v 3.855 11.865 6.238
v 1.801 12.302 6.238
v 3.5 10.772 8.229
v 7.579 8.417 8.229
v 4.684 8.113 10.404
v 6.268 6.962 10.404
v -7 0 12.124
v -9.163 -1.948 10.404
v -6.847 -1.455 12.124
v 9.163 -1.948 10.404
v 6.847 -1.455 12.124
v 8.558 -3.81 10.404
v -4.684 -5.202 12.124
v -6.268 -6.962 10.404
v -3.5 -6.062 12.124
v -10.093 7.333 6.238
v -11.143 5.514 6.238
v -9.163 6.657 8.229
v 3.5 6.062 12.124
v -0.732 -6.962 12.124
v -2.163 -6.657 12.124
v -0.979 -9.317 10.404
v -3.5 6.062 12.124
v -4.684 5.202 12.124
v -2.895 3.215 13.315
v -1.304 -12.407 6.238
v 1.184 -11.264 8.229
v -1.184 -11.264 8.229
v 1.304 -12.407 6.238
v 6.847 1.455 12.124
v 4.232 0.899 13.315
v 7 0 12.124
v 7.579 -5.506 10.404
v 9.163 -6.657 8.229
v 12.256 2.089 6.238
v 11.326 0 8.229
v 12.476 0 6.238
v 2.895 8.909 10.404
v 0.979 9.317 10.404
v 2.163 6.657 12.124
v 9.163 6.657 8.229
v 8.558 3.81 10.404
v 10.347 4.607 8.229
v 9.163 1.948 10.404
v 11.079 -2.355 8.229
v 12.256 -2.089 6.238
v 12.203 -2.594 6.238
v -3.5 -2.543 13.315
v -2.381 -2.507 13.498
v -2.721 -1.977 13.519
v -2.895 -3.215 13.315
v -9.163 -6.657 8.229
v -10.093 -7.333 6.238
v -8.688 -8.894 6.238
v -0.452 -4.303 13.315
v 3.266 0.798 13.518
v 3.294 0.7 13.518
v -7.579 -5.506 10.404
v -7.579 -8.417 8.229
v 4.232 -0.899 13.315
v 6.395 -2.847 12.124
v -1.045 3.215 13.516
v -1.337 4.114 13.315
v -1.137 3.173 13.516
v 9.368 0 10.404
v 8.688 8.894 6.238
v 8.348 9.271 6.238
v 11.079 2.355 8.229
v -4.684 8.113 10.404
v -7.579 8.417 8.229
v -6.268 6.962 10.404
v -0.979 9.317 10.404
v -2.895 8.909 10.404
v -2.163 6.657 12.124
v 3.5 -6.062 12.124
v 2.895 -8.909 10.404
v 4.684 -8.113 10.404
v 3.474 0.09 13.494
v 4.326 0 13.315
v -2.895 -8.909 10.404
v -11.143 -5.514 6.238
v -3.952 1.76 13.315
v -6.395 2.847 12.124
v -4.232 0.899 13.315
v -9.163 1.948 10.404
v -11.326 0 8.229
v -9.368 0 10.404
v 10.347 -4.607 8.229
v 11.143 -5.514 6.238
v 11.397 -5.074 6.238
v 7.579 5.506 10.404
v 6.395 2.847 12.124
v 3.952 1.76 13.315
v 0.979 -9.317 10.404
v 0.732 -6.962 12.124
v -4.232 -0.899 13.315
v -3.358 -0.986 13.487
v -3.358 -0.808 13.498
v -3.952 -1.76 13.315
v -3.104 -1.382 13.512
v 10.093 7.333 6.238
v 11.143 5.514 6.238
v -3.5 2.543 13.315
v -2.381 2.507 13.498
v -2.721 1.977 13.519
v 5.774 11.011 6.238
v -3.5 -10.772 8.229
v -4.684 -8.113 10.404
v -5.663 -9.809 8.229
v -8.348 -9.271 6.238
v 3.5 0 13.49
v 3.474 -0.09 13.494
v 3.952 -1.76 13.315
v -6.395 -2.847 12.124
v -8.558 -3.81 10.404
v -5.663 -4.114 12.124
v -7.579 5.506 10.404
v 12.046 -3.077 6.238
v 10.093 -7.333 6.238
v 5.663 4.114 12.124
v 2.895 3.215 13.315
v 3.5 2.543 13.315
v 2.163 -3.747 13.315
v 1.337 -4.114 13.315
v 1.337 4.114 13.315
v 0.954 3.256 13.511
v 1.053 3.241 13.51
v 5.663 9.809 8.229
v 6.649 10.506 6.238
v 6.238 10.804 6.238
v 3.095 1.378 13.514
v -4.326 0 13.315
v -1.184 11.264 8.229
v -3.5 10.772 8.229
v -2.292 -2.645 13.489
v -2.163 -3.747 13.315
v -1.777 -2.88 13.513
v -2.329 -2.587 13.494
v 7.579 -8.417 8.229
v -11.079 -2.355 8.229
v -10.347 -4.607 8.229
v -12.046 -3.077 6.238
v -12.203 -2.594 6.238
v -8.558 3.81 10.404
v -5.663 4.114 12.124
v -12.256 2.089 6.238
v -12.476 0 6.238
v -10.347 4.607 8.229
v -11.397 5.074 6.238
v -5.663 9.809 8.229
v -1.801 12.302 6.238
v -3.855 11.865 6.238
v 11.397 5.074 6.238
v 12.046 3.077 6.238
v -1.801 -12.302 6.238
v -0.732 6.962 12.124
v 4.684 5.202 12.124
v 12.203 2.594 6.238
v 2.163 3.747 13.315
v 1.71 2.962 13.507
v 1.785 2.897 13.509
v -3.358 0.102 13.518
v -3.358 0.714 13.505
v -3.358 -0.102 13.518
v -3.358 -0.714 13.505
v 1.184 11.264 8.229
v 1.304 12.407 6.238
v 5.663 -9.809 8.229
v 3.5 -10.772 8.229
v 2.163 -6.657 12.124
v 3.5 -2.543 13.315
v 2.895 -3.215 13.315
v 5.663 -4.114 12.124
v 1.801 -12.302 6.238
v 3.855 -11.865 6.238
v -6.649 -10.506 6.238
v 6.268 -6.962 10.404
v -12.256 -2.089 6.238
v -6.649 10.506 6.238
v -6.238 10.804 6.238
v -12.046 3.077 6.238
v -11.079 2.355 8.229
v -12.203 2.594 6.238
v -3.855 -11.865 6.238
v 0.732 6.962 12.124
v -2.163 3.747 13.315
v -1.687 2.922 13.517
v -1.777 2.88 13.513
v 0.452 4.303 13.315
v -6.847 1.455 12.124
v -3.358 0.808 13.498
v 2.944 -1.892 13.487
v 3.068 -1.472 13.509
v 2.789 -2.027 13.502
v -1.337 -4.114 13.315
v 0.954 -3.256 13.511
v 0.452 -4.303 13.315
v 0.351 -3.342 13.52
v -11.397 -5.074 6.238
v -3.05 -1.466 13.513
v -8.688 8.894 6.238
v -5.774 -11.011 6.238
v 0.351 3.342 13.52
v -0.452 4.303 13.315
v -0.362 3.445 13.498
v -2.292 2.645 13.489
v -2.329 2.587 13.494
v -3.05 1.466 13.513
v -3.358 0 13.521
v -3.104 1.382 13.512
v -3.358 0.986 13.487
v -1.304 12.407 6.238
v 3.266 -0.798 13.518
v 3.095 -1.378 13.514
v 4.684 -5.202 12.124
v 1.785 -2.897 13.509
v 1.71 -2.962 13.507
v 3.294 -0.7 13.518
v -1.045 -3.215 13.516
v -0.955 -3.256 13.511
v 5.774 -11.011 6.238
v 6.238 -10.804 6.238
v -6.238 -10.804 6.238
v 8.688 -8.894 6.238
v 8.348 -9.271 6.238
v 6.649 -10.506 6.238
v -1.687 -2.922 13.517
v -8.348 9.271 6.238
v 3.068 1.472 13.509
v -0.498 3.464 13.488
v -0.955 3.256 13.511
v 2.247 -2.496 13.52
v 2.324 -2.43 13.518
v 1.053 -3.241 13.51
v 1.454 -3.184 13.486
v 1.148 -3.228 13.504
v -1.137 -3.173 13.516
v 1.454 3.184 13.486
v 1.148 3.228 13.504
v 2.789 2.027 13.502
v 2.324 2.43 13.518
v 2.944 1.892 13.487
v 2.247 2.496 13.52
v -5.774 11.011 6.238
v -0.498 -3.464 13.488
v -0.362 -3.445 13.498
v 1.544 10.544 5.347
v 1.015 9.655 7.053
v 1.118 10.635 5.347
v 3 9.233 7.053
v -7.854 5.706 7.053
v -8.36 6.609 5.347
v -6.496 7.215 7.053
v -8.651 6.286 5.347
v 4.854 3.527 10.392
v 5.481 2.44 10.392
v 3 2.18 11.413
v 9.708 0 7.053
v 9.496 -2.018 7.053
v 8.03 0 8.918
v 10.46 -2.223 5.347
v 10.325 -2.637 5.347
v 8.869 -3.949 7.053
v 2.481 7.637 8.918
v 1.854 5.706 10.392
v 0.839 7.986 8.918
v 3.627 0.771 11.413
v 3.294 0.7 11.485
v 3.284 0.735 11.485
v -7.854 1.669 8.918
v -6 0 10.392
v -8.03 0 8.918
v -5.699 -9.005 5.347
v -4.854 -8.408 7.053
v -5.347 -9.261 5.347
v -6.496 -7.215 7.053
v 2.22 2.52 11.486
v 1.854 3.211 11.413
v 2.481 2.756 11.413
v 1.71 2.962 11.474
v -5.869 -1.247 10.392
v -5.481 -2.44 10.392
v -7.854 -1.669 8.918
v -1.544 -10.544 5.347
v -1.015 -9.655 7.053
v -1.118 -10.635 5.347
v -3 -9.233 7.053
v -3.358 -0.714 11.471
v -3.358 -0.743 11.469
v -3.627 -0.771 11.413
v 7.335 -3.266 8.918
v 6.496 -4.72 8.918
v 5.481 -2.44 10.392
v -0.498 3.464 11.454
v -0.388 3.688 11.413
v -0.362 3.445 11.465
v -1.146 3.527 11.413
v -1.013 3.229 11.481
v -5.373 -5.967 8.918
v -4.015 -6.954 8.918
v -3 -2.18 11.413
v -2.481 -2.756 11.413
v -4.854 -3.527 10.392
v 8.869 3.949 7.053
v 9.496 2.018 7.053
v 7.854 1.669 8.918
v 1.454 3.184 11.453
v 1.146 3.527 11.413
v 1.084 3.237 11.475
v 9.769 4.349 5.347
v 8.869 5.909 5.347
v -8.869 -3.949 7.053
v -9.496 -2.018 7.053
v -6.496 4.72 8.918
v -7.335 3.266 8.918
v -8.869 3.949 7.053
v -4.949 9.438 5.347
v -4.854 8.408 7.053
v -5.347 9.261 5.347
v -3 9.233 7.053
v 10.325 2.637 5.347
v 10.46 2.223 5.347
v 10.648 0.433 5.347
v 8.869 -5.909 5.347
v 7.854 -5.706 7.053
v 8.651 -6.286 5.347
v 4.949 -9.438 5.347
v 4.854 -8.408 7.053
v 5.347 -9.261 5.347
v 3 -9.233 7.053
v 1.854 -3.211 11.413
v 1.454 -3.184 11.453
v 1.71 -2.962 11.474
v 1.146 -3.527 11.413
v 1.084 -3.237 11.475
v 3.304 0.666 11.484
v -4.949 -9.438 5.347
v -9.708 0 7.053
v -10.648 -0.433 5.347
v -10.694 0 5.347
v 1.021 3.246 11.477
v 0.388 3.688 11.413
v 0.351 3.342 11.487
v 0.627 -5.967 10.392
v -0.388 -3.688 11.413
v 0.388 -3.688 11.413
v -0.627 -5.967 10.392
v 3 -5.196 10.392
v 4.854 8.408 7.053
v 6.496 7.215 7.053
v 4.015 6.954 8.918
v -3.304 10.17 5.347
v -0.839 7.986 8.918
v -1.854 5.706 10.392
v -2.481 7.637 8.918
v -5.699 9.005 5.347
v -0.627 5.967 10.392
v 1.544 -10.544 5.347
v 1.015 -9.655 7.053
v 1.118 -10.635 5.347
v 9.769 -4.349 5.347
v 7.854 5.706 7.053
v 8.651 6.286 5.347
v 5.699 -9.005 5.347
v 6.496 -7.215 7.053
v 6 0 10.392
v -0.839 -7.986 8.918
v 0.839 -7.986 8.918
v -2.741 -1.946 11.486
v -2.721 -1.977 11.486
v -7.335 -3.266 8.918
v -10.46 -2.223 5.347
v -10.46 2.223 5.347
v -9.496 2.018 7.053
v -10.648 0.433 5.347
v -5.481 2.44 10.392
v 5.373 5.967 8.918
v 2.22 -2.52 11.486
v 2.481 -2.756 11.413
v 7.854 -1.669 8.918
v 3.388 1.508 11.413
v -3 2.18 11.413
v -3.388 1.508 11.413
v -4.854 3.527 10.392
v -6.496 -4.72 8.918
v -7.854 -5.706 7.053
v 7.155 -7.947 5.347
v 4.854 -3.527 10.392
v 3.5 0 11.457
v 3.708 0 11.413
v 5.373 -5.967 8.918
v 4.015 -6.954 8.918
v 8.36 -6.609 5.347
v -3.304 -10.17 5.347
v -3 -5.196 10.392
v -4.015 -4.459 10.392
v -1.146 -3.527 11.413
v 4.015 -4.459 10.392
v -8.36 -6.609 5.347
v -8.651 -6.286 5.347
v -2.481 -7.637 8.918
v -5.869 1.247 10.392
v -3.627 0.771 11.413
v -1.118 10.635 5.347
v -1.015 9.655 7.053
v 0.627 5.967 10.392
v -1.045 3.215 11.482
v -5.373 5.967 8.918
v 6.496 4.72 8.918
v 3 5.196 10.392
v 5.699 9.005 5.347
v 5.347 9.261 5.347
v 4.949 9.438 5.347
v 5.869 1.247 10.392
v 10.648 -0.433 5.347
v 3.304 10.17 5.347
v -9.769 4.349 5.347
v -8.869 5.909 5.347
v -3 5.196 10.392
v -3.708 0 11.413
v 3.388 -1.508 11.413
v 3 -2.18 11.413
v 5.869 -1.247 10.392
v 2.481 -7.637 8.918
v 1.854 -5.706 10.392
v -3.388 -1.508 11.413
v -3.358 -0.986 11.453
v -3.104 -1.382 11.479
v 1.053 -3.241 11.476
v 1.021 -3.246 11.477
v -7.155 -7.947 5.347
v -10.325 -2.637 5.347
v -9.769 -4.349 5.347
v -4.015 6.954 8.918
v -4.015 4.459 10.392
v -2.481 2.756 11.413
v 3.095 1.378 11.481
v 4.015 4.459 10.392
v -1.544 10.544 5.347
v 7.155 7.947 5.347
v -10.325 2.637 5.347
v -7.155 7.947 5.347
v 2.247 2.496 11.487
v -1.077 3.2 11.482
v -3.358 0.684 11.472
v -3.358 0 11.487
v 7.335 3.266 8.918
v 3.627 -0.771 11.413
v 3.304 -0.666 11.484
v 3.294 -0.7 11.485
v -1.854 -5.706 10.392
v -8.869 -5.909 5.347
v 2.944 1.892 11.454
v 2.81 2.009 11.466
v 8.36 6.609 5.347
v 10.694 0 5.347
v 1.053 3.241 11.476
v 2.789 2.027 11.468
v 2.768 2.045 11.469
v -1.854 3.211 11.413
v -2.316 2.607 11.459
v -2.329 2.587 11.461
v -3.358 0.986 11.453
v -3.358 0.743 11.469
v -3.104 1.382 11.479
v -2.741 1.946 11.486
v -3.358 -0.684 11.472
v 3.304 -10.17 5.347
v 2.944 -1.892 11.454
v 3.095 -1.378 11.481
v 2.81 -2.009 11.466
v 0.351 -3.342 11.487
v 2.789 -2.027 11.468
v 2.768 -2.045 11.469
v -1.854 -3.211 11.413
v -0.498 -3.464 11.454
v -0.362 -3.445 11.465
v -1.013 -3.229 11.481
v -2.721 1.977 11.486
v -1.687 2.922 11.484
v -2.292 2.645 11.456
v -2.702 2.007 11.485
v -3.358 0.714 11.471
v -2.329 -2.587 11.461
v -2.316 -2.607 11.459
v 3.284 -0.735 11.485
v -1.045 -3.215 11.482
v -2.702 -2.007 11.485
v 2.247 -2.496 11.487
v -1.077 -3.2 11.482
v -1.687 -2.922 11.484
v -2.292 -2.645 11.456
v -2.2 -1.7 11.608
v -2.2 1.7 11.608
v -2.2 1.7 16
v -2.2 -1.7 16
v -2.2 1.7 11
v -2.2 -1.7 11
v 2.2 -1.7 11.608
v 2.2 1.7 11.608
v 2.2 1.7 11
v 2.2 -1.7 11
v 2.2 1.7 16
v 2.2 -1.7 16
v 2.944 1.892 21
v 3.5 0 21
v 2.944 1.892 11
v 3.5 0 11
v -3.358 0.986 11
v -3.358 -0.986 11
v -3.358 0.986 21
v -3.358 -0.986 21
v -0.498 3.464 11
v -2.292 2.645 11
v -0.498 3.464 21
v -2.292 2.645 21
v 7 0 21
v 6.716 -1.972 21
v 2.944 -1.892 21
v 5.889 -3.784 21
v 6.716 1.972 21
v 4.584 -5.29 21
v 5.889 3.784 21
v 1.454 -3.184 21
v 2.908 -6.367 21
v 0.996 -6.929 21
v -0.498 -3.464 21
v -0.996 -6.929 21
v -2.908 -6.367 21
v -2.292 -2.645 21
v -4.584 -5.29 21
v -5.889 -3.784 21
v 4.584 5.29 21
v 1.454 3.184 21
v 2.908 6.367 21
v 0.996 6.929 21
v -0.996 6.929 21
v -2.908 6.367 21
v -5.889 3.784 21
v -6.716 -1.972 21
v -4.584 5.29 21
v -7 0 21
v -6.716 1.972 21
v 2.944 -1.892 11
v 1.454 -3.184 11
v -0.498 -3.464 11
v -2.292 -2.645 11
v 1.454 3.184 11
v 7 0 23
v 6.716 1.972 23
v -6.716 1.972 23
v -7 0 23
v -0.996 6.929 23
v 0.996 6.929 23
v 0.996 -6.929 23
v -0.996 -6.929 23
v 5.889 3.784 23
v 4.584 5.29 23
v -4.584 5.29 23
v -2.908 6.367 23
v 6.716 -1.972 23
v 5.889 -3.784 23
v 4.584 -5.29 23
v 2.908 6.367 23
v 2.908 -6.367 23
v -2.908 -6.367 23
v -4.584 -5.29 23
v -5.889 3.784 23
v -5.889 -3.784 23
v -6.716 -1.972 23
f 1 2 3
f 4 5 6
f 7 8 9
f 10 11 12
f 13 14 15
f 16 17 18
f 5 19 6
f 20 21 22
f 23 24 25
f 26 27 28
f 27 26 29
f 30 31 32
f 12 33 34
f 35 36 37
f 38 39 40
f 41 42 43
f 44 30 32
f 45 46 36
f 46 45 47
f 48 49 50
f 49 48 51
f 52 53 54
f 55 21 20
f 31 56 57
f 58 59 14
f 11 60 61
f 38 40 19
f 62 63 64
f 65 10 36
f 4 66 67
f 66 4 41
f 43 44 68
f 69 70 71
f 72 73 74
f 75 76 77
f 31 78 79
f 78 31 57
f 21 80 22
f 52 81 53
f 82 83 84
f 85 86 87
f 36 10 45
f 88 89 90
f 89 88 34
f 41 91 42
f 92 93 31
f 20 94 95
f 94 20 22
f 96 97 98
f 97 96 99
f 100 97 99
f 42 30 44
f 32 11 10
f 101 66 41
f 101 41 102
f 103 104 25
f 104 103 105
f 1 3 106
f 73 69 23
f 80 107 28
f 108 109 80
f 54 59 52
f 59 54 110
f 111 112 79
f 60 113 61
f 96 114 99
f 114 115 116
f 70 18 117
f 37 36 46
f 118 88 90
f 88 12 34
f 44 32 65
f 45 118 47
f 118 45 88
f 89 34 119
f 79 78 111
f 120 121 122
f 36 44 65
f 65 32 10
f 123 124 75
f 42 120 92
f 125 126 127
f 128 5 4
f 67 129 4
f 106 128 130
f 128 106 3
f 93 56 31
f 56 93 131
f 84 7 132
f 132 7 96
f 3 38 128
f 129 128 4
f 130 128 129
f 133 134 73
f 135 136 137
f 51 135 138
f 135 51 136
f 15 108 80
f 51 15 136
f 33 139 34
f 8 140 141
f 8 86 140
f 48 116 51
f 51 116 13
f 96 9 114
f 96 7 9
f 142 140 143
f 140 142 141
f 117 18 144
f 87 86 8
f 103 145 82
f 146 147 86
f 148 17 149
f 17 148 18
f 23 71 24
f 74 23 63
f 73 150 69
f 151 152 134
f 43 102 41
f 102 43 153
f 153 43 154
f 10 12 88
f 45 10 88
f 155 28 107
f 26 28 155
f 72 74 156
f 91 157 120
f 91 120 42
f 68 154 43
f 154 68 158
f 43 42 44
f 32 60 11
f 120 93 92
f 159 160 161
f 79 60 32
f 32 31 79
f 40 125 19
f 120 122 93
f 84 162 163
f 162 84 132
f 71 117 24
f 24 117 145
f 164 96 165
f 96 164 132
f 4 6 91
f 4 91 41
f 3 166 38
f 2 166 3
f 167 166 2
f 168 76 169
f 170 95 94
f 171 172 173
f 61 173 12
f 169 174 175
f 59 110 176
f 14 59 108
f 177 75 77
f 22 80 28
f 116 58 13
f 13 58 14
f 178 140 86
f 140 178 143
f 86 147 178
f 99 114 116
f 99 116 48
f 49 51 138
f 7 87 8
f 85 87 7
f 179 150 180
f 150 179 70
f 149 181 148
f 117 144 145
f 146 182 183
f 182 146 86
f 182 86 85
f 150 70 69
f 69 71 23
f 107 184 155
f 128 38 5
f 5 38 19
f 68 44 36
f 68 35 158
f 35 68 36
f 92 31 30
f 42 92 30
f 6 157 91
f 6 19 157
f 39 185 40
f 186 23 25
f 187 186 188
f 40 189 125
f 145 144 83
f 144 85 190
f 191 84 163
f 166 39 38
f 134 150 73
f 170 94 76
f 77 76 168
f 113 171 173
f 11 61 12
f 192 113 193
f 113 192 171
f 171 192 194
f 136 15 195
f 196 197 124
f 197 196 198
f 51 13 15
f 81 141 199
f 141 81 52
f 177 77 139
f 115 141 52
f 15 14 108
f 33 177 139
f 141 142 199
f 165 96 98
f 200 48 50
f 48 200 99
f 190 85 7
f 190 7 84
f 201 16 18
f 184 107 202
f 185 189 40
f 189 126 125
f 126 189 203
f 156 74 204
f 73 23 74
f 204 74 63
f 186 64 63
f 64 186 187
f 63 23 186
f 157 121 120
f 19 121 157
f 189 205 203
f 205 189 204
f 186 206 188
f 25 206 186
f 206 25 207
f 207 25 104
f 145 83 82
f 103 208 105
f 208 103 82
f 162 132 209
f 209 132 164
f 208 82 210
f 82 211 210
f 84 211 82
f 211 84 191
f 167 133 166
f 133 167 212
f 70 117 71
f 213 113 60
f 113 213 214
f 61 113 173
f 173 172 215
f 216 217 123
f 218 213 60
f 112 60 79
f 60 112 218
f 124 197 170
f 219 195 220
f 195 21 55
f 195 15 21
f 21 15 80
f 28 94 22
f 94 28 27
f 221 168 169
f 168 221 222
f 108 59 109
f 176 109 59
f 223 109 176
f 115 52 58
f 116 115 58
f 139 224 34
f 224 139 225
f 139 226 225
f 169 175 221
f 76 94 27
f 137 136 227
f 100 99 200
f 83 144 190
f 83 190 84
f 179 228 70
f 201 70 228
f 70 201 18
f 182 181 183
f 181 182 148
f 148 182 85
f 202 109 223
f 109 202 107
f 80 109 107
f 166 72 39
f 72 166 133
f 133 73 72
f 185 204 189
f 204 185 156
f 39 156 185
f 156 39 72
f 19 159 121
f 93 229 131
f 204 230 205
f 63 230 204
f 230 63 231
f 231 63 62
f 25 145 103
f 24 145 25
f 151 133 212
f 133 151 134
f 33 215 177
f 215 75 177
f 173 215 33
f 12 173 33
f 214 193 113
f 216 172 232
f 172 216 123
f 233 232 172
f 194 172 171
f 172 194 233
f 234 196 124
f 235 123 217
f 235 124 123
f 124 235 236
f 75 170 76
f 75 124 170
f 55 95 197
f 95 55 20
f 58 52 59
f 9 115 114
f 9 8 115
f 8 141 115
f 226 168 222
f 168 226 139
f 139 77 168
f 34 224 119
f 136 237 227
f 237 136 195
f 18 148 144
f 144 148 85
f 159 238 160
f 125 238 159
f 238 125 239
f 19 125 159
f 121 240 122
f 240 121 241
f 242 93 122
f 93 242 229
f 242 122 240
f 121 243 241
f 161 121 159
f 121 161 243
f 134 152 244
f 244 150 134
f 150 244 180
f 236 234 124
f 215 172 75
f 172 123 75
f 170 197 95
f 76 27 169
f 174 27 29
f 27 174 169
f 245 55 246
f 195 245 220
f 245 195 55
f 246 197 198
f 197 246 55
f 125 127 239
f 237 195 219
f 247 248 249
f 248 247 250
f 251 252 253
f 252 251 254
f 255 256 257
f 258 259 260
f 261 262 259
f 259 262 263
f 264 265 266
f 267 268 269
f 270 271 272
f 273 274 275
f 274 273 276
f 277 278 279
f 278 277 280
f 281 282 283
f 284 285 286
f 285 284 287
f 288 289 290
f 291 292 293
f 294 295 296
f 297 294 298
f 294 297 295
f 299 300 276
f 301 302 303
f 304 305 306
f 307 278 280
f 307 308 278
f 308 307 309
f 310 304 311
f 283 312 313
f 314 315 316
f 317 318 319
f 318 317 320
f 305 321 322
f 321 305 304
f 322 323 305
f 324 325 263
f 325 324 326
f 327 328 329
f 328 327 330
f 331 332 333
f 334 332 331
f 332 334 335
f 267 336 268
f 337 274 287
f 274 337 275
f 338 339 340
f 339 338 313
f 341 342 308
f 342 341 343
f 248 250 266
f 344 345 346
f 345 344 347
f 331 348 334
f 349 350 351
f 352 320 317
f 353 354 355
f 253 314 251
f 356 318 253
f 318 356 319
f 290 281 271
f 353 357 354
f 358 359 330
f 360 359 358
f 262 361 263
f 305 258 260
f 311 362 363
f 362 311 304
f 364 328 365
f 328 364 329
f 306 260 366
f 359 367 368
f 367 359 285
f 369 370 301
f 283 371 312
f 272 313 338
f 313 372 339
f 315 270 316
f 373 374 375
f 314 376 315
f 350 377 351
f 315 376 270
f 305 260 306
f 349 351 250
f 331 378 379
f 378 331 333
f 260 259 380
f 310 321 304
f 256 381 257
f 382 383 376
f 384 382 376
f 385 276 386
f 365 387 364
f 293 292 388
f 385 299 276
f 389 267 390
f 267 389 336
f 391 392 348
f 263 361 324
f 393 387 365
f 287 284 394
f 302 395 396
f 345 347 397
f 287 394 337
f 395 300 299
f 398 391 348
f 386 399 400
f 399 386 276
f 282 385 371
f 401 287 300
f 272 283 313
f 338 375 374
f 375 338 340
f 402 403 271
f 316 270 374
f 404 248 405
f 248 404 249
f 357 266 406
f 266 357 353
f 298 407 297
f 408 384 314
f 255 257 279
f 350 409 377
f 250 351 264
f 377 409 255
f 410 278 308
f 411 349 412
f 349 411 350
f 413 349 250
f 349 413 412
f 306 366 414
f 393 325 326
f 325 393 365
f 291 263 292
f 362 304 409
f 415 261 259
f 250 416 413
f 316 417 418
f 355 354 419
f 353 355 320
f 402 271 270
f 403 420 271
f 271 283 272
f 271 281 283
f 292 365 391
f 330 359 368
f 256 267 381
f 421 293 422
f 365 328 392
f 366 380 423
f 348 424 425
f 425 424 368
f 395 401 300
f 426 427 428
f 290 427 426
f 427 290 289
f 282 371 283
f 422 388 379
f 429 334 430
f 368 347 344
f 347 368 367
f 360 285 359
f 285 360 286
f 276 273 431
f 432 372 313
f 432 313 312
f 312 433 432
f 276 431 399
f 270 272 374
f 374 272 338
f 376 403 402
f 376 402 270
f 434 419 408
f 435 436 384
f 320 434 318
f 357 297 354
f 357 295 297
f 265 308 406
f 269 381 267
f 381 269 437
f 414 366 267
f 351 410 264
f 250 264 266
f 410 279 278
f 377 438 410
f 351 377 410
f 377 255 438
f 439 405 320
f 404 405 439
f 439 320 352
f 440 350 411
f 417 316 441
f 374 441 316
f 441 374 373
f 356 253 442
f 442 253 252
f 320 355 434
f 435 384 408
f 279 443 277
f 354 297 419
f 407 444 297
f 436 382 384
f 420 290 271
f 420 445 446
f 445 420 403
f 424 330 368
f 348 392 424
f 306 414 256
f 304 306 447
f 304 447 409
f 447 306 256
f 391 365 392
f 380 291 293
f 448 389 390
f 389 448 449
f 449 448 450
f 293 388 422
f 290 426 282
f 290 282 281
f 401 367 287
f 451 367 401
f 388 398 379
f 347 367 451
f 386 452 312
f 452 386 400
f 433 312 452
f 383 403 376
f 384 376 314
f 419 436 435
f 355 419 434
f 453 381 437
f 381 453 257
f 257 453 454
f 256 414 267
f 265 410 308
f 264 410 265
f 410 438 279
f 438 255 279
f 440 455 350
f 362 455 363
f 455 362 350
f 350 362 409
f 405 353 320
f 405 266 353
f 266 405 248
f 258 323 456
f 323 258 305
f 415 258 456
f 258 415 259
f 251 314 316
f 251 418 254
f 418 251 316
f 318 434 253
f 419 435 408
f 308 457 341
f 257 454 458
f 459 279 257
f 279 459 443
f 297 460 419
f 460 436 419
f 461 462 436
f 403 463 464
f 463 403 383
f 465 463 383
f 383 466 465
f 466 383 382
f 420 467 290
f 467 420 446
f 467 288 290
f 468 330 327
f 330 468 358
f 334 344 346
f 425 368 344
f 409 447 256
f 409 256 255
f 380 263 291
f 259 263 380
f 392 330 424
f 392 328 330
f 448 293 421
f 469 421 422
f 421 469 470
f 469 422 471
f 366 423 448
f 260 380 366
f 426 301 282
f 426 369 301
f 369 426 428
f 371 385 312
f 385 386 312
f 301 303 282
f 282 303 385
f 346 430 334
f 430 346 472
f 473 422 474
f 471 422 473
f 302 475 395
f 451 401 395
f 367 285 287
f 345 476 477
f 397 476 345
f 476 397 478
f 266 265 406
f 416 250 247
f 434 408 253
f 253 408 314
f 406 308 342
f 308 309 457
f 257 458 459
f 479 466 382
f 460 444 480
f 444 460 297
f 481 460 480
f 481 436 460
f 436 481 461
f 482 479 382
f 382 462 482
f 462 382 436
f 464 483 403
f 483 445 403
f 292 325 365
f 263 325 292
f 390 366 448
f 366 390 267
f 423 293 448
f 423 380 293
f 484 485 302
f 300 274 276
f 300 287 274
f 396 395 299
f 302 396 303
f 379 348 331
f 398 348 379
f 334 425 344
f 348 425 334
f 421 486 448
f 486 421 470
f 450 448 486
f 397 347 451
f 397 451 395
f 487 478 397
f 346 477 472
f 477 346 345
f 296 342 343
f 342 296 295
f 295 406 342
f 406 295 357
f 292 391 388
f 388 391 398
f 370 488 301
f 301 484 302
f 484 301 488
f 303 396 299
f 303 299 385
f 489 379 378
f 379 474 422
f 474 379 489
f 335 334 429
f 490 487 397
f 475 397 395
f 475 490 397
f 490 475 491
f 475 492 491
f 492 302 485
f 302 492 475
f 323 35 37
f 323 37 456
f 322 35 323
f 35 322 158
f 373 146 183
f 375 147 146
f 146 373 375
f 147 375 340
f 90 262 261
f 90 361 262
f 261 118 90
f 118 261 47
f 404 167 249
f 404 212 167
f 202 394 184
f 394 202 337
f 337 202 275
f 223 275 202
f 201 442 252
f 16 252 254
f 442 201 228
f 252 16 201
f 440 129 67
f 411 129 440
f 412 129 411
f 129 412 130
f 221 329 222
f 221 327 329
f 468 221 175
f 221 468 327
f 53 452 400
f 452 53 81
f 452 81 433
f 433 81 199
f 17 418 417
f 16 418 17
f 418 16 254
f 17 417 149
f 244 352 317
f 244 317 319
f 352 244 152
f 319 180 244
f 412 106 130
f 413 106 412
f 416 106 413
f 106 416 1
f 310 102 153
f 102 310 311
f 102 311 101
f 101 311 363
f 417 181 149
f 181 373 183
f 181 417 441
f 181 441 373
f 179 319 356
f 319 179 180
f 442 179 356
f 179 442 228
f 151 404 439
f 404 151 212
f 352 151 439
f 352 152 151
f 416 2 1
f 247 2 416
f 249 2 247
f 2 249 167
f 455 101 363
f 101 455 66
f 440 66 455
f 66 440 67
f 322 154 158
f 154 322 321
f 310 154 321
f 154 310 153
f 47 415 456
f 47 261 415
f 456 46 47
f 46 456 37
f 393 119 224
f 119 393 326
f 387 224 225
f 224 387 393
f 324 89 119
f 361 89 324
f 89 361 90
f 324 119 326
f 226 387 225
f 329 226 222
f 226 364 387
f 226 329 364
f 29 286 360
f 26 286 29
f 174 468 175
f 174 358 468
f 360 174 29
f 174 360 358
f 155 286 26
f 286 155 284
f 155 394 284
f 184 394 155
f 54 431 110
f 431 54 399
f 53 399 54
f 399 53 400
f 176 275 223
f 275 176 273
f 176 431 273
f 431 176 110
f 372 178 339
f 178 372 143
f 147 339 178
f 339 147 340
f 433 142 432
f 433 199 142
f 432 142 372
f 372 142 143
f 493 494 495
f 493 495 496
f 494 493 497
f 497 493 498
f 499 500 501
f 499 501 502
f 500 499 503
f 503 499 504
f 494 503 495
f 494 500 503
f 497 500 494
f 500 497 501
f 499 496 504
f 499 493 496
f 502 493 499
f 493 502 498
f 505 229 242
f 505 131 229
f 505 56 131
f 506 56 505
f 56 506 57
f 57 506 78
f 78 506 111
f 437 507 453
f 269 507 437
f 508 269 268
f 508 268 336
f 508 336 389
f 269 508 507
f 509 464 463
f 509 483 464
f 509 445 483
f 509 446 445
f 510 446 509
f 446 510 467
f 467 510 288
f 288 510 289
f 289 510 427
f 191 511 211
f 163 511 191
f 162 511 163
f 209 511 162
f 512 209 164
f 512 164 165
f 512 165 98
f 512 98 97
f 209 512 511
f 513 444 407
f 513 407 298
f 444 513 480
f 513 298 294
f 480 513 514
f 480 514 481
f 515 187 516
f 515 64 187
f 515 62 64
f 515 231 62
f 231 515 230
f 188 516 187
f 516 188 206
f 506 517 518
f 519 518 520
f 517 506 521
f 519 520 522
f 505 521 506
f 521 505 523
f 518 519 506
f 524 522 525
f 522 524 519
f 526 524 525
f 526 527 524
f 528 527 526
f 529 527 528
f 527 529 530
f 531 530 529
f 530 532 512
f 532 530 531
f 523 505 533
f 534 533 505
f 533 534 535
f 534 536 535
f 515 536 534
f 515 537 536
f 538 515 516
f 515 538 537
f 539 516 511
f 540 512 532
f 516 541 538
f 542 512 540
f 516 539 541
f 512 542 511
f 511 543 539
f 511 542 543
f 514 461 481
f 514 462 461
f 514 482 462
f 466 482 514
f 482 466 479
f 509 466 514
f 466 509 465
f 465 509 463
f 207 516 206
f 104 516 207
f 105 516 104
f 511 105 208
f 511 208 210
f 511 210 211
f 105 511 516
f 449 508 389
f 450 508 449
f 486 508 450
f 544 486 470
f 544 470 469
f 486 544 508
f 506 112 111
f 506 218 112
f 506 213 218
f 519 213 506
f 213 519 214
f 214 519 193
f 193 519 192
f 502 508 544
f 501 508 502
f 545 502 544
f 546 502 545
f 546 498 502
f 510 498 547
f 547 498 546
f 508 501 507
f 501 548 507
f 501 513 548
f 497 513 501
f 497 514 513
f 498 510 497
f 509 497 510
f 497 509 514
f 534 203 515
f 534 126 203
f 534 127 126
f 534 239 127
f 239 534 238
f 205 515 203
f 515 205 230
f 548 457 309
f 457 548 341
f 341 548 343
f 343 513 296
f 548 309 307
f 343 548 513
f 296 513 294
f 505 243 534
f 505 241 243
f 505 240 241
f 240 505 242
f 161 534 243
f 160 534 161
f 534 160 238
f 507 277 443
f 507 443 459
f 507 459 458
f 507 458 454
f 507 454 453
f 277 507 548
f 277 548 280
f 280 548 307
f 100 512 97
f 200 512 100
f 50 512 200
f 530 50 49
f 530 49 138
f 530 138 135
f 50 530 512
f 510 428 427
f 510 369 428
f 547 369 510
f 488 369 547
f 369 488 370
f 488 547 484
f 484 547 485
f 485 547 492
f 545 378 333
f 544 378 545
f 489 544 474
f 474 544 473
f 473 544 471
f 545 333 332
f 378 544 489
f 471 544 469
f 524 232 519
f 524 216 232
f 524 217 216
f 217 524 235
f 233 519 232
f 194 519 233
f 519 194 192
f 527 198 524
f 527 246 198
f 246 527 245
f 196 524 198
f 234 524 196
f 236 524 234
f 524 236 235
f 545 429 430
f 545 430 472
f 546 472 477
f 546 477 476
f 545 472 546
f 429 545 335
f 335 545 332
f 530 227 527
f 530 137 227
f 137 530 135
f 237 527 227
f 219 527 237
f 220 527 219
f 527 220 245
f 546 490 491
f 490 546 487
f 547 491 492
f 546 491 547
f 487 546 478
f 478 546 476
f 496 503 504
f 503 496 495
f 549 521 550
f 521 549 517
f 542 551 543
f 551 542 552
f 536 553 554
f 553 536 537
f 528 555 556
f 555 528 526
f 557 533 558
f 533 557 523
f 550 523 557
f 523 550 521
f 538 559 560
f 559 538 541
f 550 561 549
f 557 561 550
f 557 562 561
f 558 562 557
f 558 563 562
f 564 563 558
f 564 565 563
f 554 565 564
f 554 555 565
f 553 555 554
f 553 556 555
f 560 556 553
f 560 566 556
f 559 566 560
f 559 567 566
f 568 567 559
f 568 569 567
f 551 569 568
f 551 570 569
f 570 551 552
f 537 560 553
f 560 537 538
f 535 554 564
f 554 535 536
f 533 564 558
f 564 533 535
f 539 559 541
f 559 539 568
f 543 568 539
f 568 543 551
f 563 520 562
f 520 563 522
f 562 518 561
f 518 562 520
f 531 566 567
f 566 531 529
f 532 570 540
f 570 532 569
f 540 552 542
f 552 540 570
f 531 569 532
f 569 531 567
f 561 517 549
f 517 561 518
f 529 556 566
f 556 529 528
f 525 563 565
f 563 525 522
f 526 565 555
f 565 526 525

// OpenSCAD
MARGIN=0.2;

difference() {

intersection() {

difference() {
    
sphere(14);

sphere(12);

}

cylinder(15,0,30);

}

translate([-2-MARGIN,-1.5-MARGIN,10]) {
cube([4+MARGIN*2,3+MARGIN*2,4]);
}

}



difference() {

translate([0,0,11]) {
    cylinder(10,3.5,3.5);
}

translate([-2-MARGIN,-1.5-MARGIN,11]) {
cube([4+MARGIN*2,3+MARGIN*2,5]);
}


}

translate([0,0,21]) {
    cylinder(2,7,7);
}
